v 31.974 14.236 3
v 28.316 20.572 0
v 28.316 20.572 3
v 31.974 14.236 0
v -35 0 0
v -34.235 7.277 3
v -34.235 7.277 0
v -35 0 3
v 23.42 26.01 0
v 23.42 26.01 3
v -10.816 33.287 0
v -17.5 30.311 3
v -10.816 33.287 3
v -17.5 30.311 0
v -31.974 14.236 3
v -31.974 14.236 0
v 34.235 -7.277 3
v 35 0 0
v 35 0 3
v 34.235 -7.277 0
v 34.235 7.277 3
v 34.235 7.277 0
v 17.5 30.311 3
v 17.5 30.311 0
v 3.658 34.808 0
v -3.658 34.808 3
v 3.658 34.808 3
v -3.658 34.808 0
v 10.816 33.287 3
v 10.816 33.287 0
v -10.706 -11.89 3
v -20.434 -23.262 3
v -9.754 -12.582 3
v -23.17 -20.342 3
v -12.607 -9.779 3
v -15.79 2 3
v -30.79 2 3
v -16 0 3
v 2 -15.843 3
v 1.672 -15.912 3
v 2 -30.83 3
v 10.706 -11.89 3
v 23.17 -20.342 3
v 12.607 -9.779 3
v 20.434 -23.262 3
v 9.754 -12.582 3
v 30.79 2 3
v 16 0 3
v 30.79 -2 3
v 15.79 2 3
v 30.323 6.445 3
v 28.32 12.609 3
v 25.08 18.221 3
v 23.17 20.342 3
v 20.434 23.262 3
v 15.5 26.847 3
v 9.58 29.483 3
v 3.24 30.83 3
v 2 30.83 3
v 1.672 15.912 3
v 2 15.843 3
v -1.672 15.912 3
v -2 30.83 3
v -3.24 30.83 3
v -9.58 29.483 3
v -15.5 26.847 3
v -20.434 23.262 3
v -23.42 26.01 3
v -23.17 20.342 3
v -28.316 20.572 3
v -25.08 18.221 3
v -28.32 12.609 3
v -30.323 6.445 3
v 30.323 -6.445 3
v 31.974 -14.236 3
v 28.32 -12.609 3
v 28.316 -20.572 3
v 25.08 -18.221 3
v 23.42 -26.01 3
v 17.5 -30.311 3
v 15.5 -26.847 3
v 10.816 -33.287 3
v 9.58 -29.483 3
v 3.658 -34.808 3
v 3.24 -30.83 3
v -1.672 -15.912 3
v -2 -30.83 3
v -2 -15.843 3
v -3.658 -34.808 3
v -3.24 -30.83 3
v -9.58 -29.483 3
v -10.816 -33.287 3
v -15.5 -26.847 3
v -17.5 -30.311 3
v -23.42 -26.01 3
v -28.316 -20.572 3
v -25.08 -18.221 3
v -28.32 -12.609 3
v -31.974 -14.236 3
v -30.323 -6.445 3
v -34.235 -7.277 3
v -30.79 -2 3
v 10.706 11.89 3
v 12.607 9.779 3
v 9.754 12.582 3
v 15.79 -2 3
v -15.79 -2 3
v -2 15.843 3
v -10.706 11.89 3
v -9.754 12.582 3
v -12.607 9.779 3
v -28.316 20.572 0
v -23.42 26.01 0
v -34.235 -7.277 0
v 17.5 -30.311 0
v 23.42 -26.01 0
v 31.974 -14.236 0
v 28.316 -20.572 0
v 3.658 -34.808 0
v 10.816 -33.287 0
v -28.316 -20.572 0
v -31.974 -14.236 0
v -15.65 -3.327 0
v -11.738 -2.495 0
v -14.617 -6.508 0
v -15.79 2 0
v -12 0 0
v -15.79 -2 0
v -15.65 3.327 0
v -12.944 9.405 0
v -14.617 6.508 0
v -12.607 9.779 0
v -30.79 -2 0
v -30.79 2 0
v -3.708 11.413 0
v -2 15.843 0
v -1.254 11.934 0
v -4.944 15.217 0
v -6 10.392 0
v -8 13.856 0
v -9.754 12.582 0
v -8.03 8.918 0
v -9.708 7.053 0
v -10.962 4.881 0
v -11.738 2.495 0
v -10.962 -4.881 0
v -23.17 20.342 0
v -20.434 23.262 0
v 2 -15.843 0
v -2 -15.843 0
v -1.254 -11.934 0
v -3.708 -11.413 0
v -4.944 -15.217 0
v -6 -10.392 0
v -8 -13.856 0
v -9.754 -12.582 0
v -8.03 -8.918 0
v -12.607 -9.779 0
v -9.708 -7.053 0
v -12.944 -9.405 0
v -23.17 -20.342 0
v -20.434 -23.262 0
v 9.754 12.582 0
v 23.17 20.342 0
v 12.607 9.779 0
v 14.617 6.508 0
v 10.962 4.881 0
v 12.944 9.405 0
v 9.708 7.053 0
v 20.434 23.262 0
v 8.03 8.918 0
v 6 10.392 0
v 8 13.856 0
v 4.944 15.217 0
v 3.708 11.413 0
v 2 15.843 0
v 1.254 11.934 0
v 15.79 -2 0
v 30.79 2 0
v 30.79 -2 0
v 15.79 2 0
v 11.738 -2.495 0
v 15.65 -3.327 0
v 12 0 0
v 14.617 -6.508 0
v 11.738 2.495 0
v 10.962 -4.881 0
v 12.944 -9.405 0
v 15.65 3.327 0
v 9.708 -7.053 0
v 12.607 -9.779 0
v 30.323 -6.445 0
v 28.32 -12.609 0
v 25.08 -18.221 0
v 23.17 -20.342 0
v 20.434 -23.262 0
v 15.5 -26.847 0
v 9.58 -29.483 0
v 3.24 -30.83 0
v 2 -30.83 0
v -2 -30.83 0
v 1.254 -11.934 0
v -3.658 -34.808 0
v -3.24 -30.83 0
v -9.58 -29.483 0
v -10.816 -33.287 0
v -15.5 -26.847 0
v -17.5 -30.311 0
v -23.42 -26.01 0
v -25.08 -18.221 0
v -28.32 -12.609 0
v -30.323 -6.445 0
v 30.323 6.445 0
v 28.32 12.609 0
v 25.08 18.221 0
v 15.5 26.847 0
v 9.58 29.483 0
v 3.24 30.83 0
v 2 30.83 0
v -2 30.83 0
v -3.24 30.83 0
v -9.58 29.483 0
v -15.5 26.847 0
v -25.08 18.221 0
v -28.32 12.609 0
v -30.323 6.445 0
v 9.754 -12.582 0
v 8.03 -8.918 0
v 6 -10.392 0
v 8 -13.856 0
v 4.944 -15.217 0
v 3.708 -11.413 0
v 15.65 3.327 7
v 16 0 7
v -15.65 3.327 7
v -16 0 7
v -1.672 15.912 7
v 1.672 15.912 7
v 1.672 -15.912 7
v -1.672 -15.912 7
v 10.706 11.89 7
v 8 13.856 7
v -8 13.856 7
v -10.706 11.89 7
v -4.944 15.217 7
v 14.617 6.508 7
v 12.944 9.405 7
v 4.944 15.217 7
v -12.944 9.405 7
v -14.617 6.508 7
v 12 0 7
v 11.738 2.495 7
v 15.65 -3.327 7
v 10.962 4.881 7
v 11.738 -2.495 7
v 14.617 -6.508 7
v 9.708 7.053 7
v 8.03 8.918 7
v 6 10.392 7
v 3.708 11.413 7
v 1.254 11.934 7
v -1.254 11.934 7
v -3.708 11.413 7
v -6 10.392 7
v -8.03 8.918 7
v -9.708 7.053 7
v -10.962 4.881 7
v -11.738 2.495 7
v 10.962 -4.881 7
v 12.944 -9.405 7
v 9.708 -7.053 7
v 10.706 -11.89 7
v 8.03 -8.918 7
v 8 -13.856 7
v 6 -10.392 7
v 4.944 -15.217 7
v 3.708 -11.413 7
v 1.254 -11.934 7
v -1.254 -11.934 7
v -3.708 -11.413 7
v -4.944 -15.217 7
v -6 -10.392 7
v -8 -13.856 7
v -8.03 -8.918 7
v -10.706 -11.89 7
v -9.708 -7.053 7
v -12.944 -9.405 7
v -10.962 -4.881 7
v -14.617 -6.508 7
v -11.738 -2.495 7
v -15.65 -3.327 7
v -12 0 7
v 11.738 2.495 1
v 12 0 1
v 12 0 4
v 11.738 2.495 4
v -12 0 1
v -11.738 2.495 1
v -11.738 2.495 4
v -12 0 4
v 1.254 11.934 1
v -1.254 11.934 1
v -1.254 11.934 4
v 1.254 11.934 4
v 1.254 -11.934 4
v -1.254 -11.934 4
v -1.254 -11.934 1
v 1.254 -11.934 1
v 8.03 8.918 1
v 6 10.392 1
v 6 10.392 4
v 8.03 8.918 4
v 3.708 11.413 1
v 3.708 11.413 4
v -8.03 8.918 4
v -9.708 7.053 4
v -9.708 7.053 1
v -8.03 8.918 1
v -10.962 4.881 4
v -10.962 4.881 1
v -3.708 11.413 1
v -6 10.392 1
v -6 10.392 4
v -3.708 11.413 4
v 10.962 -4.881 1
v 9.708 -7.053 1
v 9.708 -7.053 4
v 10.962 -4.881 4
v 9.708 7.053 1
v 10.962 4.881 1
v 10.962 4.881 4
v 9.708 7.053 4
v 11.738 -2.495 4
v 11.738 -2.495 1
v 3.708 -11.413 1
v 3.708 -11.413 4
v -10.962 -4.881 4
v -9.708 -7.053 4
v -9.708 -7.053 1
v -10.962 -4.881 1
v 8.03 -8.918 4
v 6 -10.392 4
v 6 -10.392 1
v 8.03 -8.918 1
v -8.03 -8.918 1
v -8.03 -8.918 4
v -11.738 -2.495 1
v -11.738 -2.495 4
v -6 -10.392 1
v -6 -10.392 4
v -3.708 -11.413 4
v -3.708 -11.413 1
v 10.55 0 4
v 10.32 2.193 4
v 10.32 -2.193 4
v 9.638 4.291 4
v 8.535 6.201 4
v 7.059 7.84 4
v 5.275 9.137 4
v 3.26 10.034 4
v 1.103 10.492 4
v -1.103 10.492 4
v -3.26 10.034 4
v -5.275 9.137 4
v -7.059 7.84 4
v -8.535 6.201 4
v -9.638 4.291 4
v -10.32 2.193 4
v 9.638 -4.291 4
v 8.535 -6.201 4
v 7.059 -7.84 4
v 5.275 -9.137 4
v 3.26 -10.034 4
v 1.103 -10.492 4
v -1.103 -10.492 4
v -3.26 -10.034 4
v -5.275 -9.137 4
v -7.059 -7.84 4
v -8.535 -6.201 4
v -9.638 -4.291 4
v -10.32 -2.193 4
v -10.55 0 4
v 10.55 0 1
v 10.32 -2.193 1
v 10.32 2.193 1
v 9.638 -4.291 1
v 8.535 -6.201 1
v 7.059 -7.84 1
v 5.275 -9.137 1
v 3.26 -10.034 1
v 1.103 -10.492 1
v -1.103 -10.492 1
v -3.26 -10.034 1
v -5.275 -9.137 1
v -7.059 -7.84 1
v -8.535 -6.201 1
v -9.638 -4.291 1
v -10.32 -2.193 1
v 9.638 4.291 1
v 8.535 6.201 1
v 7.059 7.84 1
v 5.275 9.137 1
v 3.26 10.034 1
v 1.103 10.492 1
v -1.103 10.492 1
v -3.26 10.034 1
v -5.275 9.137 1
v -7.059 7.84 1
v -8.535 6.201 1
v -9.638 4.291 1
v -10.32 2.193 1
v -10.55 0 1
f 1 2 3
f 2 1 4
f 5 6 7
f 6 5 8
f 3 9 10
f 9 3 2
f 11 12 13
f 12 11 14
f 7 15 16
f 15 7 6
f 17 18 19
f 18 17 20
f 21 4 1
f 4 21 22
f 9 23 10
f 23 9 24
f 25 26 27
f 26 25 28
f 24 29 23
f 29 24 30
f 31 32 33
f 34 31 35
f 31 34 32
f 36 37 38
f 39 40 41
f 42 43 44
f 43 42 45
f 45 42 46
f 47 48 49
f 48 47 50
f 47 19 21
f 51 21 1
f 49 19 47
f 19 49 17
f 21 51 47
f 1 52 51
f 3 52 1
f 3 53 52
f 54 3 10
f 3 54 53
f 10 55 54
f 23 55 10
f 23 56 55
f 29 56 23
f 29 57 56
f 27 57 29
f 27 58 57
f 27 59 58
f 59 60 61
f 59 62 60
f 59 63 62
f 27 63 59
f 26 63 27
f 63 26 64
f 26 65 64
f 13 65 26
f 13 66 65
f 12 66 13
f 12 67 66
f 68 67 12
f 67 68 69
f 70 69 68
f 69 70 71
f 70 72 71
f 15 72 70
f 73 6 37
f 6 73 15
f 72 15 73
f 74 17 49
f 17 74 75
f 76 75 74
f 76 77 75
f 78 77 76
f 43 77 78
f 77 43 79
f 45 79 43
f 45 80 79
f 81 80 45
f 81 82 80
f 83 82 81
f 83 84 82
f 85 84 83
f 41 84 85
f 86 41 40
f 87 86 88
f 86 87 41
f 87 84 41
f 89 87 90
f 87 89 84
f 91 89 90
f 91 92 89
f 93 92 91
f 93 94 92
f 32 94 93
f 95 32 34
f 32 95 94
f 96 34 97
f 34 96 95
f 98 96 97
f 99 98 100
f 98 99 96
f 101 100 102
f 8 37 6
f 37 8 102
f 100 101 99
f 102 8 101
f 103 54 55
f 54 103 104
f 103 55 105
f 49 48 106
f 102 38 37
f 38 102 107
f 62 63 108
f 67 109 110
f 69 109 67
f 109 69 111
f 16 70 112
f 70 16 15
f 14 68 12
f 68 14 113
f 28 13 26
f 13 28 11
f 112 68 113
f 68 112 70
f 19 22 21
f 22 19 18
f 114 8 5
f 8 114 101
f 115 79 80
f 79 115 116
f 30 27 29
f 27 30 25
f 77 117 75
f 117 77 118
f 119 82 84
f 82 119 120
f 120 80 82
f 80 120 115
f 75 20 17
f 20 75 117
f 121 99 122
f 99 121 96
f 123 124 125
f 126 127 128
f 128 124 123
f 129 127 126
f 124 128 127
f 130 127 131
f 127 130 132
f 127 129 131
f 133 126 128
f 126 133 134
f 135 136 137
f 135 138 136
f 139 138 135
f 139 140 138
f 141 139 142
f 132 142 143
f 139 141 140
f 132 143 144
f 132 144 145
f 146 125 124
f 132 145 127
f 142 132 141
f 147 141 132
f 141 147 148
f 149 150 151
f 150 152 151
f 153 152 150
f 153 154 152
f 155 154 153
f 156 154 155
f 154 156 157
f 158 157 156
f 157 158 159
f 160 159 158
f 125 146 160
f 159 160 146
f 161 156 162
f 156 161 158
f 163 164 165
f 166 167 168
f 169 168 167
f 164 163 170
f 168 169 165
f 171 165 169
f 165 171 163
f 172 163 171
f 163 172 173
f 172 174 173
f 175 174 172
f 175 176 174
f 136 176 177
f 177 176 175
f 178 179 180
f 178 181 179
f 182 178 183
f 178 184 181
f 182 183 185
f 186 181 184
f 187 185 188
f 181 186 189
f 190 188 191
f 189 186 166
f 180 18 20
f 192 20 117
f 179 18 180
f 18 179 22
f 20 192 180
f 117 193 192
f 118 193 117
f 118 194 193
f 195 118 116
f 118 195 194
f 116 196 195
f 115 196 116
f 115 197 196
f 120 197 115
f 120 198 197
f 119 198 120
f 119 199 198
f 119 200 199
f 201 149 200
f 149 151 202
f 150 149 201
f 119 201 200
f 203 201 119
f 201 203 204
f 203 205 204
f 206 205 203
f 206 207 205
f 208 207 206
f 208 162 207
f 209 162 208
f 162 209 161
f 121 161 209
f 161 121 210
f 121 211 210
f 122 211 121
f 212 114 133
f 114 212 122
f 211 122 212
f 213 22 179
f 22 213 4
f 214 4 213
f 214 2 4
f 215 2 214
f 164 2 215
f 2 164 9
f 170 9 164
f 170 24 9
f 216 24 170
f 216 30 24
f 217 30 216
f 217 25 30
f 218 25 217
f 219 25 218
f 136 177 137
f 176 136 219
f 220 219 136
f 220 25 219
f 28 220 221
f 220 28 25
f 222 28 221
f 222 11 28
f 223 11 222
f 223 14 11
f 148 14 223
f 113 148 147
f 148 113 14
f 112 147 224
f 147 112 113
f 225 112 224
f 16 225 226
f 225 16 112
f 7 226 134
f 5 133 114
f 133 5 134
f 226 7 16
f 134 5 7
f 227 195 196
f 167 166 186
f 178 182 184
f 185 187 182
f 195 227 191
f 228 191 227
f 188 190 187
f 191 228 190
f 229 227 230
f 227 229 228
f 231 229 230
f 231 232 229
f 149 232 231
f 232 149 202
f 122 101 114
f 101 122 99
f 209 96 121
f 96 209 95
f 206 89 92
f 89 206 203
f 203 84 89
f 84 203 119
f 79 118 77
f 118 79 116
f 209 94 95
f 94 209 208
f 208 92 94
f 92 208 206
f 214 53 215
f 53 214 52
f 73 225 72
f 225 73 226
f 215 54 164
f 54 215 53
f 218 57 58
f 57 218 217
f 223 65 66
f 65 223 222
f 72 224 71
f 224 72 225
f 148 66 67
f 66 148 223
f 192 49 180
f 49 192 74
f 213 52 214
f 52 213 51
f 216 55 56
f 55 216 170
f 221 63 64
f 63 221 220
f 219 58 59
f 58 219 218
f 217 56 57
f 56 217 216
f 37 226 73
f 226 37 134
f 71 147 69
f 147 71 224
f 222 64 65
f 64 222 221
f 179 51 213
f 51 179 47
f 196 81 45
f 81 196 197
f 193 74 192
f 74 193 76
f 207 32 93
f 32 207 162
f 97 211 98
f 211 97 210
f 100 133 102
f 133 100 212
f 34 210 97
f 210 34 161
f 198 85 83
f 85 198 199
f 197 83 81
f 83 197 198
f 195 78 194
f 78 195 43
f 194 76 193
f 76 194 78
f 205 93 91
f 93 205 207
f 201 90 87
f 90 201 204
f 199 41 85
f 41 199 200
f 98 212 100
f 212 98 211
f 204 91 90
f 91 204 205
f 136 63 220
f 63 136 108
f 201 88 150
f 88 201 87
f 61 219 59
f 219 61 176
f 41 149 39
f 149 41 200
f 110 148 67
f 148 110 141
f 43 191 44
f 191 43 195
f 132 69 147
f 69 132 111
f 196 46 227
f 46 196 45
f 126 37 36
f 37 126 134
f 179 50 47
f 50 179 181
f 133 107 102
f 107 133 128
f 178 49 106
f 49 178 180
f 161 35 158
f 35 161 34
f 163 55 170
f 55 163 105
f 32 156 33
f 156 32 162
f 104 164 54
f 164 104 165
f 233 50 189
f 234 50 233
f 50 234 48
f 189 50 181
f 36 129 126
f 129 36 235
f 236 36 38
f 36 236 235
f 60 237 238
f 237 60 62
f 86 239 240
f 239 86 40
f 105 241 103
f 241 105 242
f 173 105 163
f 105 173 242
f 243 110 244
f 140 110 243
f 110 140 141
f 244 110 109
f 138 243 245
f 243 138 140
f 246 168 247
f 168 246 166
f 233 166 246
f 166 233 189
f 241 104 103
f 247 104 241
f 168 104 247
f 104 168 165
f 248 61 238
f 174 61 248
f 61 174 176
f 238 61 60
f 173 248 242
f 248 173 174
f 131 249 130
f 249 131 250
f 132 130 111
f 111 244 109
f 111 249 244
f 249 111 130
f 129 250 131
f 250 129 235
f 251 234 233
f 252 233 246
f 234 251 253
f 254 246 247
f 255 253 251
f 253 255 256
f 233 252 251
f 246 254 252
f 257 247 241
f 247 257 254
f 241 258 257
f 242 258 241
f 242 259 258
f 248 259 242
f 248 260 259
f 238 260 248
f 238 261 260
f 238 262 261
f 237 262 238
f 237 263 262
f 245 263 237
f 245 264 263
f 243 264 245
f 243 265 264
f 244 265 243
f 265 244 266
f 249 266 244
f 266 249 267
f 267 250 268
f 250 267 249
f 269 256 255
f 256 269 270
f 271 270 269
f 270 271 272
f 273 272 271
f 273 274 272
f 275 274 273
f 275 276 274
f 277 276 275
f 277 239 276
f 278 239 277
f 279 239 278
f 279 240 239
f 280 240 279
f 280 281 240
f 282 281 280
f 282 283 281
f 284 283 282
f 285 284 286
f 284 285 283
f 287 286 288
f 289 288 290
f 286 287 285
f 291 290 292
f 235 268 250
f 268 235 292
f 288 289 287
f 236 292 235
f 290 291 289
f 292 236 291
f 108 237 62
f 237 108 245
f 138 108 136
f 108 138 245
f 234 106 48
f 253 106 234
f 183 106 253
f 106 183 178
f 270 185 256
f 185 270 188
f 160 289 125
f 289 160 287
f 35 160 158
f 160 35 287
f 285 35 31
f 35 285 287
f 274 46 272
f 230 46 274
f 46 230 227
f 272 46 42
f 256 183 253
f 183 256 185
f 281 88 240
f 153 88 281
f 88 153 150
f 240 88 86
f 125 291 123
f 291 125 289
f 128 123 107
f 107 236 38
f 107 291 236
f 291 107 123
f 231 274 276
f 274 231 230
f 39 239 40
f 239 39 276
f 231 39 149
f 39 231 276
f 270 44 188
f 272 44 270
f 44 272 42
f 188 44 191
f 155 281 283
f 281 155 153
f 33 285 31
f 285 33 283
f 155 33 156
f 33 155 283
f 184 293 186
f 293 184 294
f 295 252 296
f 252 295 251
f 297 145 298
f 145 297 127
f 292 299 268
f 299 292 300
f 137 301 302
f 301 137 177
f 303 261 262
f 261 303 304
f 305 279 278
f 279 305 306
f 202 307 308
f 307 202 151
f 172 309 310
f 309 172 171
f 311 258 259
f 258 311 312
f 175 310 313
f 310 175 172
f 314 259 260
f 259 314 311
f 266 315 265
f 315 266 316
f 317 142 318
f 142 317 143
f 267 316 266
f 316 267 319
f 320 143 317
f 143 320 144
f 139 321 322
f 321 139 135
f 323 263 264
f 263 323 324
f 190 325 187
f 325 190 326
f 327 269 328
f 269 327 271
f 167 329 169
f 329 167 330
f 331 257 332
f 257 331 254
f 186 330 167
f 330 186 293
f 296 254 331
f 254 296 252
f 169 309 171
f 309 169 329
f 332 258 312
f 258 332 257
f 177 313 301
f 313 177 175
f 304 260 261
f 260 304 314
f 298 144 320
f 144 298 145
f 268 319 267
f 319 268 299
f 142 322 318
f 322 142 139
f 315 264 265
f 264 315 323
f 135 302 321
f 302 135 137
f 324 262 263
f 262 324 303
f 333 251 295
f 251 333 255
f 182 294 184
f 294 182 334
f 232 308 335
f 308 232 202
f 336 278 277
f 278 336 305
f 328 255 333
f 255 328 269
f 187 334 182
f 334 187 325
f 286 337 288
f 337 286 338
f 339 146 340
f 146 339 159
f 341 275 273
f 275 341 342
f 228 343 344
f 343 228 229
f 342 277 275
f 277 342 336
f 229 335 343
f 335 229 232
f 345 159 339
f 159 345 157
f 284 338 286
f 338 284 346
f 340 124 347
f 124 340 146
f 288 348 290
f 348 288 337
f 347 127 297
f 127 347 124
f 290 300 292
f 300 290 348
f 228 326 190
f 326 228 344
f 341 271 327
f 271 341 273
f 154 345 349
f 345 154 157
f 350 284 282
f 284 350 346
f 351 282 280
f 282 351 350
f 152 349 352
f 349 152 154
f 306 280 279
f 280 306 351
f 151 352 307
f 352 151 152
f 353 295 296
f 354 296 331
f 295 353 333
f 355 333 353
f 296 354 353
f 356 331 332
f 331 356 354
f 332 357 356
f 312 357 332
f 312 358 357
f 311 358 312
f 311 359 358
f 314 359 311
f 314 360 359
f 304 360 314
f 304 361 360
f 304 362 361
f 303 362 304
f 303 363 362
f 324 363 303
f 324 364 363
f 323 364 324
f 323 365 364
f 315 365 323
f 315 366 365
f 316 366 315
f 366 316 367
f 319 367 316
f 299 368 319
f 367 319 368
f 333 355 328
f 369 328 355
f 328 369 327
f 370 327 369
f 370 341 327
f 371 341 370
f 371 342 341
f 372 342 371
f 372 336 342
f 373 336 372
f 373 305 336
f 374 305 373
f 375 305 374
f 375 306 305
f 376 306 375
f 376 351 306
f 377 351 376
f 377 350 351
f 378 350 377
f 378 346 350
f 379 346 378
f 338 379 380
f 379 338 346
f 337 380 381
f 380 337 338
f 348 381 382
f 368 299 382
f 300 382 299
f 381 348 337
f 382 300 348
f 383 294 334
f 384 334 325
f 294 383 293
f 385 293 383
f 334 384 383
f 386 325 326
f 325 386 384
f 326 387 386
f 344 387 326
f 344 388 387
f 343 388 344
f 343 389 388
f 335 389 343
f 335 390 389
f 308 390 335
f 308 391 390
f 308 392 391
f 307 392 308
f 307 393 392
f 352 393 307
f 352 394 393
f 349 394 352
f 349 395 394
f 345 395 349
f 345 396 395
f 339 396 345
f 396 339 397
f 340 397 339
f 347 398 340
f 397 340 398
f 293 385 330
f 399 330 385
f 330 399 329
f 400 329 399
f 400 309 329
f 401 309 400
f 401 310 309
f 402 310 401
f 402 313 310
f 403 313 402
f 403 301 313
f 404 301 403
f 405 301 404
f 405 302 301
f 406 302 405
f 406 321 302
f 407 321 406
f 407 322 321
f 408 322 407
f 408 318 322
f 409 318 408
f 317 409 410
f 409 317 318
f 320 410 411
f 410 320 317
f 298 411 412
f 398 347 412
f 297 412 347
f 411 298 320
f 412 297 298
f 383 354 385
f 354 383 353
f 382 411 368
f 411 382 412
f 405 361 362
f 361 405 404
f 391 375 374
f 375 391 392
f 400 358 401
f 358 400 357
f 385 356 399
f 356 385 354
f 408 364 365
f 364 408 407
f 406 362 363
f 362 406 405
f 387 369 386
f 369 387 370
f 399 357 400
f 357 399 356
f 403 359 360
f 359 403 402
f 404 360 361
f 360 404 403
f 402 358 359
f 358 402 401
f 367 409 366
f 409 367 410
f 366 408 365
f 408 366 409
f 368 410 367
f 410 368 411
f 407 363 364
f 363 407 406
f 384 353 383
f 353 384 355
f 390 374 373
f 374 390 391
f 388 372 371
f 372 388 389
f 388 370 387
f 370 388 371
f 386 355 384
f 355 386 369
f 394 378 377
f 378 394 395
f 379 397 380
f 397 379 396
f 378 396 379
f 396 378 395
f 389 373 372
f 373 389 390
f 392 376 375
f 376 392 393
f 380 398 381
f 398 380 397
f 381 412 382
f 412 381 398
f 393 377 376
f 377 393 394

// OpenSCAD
difference() {    
    union() {
        //top
        cylinder(h = 7, d = 32, center = false);
        //bottom
        buttom();
    };
    //center hole
    translate([0,0,-1])
        cylinder(h = 11, d = 32-4*2, center = false);
}

difference() {
    //bottom holder
    translate([0,0,1]) cylinder(h = 3, d = 32-4*2, center = false);    
    //bottom holder hole
    translate([0,0,-1]) cylinder(h = 10, d = 21.1, center = false);
}


module buttom () {
    difference() {
        cylinder(h = 3, d = 70, center = false);
        translate([0,0,-1])
            cylinder(h = 5, d = 70 - 4 * 2, center = false);
    }

    rotate(0)
        frameLine();
    rotate(45)
        frameLine();
    rotate(90)
        frameLine();
    rotate(135)
        frameLine();
}

module frameLine () {
    frameLineLength = 65;
    frameLinewidth = 4;
    frameLineHeight = 3;
    
    translate([-frameLinewidth/2,-frameLineLength/2,0]) 
        cube([frameLinewidth,frameLineLength, frameLineHeight], center = false);
}
